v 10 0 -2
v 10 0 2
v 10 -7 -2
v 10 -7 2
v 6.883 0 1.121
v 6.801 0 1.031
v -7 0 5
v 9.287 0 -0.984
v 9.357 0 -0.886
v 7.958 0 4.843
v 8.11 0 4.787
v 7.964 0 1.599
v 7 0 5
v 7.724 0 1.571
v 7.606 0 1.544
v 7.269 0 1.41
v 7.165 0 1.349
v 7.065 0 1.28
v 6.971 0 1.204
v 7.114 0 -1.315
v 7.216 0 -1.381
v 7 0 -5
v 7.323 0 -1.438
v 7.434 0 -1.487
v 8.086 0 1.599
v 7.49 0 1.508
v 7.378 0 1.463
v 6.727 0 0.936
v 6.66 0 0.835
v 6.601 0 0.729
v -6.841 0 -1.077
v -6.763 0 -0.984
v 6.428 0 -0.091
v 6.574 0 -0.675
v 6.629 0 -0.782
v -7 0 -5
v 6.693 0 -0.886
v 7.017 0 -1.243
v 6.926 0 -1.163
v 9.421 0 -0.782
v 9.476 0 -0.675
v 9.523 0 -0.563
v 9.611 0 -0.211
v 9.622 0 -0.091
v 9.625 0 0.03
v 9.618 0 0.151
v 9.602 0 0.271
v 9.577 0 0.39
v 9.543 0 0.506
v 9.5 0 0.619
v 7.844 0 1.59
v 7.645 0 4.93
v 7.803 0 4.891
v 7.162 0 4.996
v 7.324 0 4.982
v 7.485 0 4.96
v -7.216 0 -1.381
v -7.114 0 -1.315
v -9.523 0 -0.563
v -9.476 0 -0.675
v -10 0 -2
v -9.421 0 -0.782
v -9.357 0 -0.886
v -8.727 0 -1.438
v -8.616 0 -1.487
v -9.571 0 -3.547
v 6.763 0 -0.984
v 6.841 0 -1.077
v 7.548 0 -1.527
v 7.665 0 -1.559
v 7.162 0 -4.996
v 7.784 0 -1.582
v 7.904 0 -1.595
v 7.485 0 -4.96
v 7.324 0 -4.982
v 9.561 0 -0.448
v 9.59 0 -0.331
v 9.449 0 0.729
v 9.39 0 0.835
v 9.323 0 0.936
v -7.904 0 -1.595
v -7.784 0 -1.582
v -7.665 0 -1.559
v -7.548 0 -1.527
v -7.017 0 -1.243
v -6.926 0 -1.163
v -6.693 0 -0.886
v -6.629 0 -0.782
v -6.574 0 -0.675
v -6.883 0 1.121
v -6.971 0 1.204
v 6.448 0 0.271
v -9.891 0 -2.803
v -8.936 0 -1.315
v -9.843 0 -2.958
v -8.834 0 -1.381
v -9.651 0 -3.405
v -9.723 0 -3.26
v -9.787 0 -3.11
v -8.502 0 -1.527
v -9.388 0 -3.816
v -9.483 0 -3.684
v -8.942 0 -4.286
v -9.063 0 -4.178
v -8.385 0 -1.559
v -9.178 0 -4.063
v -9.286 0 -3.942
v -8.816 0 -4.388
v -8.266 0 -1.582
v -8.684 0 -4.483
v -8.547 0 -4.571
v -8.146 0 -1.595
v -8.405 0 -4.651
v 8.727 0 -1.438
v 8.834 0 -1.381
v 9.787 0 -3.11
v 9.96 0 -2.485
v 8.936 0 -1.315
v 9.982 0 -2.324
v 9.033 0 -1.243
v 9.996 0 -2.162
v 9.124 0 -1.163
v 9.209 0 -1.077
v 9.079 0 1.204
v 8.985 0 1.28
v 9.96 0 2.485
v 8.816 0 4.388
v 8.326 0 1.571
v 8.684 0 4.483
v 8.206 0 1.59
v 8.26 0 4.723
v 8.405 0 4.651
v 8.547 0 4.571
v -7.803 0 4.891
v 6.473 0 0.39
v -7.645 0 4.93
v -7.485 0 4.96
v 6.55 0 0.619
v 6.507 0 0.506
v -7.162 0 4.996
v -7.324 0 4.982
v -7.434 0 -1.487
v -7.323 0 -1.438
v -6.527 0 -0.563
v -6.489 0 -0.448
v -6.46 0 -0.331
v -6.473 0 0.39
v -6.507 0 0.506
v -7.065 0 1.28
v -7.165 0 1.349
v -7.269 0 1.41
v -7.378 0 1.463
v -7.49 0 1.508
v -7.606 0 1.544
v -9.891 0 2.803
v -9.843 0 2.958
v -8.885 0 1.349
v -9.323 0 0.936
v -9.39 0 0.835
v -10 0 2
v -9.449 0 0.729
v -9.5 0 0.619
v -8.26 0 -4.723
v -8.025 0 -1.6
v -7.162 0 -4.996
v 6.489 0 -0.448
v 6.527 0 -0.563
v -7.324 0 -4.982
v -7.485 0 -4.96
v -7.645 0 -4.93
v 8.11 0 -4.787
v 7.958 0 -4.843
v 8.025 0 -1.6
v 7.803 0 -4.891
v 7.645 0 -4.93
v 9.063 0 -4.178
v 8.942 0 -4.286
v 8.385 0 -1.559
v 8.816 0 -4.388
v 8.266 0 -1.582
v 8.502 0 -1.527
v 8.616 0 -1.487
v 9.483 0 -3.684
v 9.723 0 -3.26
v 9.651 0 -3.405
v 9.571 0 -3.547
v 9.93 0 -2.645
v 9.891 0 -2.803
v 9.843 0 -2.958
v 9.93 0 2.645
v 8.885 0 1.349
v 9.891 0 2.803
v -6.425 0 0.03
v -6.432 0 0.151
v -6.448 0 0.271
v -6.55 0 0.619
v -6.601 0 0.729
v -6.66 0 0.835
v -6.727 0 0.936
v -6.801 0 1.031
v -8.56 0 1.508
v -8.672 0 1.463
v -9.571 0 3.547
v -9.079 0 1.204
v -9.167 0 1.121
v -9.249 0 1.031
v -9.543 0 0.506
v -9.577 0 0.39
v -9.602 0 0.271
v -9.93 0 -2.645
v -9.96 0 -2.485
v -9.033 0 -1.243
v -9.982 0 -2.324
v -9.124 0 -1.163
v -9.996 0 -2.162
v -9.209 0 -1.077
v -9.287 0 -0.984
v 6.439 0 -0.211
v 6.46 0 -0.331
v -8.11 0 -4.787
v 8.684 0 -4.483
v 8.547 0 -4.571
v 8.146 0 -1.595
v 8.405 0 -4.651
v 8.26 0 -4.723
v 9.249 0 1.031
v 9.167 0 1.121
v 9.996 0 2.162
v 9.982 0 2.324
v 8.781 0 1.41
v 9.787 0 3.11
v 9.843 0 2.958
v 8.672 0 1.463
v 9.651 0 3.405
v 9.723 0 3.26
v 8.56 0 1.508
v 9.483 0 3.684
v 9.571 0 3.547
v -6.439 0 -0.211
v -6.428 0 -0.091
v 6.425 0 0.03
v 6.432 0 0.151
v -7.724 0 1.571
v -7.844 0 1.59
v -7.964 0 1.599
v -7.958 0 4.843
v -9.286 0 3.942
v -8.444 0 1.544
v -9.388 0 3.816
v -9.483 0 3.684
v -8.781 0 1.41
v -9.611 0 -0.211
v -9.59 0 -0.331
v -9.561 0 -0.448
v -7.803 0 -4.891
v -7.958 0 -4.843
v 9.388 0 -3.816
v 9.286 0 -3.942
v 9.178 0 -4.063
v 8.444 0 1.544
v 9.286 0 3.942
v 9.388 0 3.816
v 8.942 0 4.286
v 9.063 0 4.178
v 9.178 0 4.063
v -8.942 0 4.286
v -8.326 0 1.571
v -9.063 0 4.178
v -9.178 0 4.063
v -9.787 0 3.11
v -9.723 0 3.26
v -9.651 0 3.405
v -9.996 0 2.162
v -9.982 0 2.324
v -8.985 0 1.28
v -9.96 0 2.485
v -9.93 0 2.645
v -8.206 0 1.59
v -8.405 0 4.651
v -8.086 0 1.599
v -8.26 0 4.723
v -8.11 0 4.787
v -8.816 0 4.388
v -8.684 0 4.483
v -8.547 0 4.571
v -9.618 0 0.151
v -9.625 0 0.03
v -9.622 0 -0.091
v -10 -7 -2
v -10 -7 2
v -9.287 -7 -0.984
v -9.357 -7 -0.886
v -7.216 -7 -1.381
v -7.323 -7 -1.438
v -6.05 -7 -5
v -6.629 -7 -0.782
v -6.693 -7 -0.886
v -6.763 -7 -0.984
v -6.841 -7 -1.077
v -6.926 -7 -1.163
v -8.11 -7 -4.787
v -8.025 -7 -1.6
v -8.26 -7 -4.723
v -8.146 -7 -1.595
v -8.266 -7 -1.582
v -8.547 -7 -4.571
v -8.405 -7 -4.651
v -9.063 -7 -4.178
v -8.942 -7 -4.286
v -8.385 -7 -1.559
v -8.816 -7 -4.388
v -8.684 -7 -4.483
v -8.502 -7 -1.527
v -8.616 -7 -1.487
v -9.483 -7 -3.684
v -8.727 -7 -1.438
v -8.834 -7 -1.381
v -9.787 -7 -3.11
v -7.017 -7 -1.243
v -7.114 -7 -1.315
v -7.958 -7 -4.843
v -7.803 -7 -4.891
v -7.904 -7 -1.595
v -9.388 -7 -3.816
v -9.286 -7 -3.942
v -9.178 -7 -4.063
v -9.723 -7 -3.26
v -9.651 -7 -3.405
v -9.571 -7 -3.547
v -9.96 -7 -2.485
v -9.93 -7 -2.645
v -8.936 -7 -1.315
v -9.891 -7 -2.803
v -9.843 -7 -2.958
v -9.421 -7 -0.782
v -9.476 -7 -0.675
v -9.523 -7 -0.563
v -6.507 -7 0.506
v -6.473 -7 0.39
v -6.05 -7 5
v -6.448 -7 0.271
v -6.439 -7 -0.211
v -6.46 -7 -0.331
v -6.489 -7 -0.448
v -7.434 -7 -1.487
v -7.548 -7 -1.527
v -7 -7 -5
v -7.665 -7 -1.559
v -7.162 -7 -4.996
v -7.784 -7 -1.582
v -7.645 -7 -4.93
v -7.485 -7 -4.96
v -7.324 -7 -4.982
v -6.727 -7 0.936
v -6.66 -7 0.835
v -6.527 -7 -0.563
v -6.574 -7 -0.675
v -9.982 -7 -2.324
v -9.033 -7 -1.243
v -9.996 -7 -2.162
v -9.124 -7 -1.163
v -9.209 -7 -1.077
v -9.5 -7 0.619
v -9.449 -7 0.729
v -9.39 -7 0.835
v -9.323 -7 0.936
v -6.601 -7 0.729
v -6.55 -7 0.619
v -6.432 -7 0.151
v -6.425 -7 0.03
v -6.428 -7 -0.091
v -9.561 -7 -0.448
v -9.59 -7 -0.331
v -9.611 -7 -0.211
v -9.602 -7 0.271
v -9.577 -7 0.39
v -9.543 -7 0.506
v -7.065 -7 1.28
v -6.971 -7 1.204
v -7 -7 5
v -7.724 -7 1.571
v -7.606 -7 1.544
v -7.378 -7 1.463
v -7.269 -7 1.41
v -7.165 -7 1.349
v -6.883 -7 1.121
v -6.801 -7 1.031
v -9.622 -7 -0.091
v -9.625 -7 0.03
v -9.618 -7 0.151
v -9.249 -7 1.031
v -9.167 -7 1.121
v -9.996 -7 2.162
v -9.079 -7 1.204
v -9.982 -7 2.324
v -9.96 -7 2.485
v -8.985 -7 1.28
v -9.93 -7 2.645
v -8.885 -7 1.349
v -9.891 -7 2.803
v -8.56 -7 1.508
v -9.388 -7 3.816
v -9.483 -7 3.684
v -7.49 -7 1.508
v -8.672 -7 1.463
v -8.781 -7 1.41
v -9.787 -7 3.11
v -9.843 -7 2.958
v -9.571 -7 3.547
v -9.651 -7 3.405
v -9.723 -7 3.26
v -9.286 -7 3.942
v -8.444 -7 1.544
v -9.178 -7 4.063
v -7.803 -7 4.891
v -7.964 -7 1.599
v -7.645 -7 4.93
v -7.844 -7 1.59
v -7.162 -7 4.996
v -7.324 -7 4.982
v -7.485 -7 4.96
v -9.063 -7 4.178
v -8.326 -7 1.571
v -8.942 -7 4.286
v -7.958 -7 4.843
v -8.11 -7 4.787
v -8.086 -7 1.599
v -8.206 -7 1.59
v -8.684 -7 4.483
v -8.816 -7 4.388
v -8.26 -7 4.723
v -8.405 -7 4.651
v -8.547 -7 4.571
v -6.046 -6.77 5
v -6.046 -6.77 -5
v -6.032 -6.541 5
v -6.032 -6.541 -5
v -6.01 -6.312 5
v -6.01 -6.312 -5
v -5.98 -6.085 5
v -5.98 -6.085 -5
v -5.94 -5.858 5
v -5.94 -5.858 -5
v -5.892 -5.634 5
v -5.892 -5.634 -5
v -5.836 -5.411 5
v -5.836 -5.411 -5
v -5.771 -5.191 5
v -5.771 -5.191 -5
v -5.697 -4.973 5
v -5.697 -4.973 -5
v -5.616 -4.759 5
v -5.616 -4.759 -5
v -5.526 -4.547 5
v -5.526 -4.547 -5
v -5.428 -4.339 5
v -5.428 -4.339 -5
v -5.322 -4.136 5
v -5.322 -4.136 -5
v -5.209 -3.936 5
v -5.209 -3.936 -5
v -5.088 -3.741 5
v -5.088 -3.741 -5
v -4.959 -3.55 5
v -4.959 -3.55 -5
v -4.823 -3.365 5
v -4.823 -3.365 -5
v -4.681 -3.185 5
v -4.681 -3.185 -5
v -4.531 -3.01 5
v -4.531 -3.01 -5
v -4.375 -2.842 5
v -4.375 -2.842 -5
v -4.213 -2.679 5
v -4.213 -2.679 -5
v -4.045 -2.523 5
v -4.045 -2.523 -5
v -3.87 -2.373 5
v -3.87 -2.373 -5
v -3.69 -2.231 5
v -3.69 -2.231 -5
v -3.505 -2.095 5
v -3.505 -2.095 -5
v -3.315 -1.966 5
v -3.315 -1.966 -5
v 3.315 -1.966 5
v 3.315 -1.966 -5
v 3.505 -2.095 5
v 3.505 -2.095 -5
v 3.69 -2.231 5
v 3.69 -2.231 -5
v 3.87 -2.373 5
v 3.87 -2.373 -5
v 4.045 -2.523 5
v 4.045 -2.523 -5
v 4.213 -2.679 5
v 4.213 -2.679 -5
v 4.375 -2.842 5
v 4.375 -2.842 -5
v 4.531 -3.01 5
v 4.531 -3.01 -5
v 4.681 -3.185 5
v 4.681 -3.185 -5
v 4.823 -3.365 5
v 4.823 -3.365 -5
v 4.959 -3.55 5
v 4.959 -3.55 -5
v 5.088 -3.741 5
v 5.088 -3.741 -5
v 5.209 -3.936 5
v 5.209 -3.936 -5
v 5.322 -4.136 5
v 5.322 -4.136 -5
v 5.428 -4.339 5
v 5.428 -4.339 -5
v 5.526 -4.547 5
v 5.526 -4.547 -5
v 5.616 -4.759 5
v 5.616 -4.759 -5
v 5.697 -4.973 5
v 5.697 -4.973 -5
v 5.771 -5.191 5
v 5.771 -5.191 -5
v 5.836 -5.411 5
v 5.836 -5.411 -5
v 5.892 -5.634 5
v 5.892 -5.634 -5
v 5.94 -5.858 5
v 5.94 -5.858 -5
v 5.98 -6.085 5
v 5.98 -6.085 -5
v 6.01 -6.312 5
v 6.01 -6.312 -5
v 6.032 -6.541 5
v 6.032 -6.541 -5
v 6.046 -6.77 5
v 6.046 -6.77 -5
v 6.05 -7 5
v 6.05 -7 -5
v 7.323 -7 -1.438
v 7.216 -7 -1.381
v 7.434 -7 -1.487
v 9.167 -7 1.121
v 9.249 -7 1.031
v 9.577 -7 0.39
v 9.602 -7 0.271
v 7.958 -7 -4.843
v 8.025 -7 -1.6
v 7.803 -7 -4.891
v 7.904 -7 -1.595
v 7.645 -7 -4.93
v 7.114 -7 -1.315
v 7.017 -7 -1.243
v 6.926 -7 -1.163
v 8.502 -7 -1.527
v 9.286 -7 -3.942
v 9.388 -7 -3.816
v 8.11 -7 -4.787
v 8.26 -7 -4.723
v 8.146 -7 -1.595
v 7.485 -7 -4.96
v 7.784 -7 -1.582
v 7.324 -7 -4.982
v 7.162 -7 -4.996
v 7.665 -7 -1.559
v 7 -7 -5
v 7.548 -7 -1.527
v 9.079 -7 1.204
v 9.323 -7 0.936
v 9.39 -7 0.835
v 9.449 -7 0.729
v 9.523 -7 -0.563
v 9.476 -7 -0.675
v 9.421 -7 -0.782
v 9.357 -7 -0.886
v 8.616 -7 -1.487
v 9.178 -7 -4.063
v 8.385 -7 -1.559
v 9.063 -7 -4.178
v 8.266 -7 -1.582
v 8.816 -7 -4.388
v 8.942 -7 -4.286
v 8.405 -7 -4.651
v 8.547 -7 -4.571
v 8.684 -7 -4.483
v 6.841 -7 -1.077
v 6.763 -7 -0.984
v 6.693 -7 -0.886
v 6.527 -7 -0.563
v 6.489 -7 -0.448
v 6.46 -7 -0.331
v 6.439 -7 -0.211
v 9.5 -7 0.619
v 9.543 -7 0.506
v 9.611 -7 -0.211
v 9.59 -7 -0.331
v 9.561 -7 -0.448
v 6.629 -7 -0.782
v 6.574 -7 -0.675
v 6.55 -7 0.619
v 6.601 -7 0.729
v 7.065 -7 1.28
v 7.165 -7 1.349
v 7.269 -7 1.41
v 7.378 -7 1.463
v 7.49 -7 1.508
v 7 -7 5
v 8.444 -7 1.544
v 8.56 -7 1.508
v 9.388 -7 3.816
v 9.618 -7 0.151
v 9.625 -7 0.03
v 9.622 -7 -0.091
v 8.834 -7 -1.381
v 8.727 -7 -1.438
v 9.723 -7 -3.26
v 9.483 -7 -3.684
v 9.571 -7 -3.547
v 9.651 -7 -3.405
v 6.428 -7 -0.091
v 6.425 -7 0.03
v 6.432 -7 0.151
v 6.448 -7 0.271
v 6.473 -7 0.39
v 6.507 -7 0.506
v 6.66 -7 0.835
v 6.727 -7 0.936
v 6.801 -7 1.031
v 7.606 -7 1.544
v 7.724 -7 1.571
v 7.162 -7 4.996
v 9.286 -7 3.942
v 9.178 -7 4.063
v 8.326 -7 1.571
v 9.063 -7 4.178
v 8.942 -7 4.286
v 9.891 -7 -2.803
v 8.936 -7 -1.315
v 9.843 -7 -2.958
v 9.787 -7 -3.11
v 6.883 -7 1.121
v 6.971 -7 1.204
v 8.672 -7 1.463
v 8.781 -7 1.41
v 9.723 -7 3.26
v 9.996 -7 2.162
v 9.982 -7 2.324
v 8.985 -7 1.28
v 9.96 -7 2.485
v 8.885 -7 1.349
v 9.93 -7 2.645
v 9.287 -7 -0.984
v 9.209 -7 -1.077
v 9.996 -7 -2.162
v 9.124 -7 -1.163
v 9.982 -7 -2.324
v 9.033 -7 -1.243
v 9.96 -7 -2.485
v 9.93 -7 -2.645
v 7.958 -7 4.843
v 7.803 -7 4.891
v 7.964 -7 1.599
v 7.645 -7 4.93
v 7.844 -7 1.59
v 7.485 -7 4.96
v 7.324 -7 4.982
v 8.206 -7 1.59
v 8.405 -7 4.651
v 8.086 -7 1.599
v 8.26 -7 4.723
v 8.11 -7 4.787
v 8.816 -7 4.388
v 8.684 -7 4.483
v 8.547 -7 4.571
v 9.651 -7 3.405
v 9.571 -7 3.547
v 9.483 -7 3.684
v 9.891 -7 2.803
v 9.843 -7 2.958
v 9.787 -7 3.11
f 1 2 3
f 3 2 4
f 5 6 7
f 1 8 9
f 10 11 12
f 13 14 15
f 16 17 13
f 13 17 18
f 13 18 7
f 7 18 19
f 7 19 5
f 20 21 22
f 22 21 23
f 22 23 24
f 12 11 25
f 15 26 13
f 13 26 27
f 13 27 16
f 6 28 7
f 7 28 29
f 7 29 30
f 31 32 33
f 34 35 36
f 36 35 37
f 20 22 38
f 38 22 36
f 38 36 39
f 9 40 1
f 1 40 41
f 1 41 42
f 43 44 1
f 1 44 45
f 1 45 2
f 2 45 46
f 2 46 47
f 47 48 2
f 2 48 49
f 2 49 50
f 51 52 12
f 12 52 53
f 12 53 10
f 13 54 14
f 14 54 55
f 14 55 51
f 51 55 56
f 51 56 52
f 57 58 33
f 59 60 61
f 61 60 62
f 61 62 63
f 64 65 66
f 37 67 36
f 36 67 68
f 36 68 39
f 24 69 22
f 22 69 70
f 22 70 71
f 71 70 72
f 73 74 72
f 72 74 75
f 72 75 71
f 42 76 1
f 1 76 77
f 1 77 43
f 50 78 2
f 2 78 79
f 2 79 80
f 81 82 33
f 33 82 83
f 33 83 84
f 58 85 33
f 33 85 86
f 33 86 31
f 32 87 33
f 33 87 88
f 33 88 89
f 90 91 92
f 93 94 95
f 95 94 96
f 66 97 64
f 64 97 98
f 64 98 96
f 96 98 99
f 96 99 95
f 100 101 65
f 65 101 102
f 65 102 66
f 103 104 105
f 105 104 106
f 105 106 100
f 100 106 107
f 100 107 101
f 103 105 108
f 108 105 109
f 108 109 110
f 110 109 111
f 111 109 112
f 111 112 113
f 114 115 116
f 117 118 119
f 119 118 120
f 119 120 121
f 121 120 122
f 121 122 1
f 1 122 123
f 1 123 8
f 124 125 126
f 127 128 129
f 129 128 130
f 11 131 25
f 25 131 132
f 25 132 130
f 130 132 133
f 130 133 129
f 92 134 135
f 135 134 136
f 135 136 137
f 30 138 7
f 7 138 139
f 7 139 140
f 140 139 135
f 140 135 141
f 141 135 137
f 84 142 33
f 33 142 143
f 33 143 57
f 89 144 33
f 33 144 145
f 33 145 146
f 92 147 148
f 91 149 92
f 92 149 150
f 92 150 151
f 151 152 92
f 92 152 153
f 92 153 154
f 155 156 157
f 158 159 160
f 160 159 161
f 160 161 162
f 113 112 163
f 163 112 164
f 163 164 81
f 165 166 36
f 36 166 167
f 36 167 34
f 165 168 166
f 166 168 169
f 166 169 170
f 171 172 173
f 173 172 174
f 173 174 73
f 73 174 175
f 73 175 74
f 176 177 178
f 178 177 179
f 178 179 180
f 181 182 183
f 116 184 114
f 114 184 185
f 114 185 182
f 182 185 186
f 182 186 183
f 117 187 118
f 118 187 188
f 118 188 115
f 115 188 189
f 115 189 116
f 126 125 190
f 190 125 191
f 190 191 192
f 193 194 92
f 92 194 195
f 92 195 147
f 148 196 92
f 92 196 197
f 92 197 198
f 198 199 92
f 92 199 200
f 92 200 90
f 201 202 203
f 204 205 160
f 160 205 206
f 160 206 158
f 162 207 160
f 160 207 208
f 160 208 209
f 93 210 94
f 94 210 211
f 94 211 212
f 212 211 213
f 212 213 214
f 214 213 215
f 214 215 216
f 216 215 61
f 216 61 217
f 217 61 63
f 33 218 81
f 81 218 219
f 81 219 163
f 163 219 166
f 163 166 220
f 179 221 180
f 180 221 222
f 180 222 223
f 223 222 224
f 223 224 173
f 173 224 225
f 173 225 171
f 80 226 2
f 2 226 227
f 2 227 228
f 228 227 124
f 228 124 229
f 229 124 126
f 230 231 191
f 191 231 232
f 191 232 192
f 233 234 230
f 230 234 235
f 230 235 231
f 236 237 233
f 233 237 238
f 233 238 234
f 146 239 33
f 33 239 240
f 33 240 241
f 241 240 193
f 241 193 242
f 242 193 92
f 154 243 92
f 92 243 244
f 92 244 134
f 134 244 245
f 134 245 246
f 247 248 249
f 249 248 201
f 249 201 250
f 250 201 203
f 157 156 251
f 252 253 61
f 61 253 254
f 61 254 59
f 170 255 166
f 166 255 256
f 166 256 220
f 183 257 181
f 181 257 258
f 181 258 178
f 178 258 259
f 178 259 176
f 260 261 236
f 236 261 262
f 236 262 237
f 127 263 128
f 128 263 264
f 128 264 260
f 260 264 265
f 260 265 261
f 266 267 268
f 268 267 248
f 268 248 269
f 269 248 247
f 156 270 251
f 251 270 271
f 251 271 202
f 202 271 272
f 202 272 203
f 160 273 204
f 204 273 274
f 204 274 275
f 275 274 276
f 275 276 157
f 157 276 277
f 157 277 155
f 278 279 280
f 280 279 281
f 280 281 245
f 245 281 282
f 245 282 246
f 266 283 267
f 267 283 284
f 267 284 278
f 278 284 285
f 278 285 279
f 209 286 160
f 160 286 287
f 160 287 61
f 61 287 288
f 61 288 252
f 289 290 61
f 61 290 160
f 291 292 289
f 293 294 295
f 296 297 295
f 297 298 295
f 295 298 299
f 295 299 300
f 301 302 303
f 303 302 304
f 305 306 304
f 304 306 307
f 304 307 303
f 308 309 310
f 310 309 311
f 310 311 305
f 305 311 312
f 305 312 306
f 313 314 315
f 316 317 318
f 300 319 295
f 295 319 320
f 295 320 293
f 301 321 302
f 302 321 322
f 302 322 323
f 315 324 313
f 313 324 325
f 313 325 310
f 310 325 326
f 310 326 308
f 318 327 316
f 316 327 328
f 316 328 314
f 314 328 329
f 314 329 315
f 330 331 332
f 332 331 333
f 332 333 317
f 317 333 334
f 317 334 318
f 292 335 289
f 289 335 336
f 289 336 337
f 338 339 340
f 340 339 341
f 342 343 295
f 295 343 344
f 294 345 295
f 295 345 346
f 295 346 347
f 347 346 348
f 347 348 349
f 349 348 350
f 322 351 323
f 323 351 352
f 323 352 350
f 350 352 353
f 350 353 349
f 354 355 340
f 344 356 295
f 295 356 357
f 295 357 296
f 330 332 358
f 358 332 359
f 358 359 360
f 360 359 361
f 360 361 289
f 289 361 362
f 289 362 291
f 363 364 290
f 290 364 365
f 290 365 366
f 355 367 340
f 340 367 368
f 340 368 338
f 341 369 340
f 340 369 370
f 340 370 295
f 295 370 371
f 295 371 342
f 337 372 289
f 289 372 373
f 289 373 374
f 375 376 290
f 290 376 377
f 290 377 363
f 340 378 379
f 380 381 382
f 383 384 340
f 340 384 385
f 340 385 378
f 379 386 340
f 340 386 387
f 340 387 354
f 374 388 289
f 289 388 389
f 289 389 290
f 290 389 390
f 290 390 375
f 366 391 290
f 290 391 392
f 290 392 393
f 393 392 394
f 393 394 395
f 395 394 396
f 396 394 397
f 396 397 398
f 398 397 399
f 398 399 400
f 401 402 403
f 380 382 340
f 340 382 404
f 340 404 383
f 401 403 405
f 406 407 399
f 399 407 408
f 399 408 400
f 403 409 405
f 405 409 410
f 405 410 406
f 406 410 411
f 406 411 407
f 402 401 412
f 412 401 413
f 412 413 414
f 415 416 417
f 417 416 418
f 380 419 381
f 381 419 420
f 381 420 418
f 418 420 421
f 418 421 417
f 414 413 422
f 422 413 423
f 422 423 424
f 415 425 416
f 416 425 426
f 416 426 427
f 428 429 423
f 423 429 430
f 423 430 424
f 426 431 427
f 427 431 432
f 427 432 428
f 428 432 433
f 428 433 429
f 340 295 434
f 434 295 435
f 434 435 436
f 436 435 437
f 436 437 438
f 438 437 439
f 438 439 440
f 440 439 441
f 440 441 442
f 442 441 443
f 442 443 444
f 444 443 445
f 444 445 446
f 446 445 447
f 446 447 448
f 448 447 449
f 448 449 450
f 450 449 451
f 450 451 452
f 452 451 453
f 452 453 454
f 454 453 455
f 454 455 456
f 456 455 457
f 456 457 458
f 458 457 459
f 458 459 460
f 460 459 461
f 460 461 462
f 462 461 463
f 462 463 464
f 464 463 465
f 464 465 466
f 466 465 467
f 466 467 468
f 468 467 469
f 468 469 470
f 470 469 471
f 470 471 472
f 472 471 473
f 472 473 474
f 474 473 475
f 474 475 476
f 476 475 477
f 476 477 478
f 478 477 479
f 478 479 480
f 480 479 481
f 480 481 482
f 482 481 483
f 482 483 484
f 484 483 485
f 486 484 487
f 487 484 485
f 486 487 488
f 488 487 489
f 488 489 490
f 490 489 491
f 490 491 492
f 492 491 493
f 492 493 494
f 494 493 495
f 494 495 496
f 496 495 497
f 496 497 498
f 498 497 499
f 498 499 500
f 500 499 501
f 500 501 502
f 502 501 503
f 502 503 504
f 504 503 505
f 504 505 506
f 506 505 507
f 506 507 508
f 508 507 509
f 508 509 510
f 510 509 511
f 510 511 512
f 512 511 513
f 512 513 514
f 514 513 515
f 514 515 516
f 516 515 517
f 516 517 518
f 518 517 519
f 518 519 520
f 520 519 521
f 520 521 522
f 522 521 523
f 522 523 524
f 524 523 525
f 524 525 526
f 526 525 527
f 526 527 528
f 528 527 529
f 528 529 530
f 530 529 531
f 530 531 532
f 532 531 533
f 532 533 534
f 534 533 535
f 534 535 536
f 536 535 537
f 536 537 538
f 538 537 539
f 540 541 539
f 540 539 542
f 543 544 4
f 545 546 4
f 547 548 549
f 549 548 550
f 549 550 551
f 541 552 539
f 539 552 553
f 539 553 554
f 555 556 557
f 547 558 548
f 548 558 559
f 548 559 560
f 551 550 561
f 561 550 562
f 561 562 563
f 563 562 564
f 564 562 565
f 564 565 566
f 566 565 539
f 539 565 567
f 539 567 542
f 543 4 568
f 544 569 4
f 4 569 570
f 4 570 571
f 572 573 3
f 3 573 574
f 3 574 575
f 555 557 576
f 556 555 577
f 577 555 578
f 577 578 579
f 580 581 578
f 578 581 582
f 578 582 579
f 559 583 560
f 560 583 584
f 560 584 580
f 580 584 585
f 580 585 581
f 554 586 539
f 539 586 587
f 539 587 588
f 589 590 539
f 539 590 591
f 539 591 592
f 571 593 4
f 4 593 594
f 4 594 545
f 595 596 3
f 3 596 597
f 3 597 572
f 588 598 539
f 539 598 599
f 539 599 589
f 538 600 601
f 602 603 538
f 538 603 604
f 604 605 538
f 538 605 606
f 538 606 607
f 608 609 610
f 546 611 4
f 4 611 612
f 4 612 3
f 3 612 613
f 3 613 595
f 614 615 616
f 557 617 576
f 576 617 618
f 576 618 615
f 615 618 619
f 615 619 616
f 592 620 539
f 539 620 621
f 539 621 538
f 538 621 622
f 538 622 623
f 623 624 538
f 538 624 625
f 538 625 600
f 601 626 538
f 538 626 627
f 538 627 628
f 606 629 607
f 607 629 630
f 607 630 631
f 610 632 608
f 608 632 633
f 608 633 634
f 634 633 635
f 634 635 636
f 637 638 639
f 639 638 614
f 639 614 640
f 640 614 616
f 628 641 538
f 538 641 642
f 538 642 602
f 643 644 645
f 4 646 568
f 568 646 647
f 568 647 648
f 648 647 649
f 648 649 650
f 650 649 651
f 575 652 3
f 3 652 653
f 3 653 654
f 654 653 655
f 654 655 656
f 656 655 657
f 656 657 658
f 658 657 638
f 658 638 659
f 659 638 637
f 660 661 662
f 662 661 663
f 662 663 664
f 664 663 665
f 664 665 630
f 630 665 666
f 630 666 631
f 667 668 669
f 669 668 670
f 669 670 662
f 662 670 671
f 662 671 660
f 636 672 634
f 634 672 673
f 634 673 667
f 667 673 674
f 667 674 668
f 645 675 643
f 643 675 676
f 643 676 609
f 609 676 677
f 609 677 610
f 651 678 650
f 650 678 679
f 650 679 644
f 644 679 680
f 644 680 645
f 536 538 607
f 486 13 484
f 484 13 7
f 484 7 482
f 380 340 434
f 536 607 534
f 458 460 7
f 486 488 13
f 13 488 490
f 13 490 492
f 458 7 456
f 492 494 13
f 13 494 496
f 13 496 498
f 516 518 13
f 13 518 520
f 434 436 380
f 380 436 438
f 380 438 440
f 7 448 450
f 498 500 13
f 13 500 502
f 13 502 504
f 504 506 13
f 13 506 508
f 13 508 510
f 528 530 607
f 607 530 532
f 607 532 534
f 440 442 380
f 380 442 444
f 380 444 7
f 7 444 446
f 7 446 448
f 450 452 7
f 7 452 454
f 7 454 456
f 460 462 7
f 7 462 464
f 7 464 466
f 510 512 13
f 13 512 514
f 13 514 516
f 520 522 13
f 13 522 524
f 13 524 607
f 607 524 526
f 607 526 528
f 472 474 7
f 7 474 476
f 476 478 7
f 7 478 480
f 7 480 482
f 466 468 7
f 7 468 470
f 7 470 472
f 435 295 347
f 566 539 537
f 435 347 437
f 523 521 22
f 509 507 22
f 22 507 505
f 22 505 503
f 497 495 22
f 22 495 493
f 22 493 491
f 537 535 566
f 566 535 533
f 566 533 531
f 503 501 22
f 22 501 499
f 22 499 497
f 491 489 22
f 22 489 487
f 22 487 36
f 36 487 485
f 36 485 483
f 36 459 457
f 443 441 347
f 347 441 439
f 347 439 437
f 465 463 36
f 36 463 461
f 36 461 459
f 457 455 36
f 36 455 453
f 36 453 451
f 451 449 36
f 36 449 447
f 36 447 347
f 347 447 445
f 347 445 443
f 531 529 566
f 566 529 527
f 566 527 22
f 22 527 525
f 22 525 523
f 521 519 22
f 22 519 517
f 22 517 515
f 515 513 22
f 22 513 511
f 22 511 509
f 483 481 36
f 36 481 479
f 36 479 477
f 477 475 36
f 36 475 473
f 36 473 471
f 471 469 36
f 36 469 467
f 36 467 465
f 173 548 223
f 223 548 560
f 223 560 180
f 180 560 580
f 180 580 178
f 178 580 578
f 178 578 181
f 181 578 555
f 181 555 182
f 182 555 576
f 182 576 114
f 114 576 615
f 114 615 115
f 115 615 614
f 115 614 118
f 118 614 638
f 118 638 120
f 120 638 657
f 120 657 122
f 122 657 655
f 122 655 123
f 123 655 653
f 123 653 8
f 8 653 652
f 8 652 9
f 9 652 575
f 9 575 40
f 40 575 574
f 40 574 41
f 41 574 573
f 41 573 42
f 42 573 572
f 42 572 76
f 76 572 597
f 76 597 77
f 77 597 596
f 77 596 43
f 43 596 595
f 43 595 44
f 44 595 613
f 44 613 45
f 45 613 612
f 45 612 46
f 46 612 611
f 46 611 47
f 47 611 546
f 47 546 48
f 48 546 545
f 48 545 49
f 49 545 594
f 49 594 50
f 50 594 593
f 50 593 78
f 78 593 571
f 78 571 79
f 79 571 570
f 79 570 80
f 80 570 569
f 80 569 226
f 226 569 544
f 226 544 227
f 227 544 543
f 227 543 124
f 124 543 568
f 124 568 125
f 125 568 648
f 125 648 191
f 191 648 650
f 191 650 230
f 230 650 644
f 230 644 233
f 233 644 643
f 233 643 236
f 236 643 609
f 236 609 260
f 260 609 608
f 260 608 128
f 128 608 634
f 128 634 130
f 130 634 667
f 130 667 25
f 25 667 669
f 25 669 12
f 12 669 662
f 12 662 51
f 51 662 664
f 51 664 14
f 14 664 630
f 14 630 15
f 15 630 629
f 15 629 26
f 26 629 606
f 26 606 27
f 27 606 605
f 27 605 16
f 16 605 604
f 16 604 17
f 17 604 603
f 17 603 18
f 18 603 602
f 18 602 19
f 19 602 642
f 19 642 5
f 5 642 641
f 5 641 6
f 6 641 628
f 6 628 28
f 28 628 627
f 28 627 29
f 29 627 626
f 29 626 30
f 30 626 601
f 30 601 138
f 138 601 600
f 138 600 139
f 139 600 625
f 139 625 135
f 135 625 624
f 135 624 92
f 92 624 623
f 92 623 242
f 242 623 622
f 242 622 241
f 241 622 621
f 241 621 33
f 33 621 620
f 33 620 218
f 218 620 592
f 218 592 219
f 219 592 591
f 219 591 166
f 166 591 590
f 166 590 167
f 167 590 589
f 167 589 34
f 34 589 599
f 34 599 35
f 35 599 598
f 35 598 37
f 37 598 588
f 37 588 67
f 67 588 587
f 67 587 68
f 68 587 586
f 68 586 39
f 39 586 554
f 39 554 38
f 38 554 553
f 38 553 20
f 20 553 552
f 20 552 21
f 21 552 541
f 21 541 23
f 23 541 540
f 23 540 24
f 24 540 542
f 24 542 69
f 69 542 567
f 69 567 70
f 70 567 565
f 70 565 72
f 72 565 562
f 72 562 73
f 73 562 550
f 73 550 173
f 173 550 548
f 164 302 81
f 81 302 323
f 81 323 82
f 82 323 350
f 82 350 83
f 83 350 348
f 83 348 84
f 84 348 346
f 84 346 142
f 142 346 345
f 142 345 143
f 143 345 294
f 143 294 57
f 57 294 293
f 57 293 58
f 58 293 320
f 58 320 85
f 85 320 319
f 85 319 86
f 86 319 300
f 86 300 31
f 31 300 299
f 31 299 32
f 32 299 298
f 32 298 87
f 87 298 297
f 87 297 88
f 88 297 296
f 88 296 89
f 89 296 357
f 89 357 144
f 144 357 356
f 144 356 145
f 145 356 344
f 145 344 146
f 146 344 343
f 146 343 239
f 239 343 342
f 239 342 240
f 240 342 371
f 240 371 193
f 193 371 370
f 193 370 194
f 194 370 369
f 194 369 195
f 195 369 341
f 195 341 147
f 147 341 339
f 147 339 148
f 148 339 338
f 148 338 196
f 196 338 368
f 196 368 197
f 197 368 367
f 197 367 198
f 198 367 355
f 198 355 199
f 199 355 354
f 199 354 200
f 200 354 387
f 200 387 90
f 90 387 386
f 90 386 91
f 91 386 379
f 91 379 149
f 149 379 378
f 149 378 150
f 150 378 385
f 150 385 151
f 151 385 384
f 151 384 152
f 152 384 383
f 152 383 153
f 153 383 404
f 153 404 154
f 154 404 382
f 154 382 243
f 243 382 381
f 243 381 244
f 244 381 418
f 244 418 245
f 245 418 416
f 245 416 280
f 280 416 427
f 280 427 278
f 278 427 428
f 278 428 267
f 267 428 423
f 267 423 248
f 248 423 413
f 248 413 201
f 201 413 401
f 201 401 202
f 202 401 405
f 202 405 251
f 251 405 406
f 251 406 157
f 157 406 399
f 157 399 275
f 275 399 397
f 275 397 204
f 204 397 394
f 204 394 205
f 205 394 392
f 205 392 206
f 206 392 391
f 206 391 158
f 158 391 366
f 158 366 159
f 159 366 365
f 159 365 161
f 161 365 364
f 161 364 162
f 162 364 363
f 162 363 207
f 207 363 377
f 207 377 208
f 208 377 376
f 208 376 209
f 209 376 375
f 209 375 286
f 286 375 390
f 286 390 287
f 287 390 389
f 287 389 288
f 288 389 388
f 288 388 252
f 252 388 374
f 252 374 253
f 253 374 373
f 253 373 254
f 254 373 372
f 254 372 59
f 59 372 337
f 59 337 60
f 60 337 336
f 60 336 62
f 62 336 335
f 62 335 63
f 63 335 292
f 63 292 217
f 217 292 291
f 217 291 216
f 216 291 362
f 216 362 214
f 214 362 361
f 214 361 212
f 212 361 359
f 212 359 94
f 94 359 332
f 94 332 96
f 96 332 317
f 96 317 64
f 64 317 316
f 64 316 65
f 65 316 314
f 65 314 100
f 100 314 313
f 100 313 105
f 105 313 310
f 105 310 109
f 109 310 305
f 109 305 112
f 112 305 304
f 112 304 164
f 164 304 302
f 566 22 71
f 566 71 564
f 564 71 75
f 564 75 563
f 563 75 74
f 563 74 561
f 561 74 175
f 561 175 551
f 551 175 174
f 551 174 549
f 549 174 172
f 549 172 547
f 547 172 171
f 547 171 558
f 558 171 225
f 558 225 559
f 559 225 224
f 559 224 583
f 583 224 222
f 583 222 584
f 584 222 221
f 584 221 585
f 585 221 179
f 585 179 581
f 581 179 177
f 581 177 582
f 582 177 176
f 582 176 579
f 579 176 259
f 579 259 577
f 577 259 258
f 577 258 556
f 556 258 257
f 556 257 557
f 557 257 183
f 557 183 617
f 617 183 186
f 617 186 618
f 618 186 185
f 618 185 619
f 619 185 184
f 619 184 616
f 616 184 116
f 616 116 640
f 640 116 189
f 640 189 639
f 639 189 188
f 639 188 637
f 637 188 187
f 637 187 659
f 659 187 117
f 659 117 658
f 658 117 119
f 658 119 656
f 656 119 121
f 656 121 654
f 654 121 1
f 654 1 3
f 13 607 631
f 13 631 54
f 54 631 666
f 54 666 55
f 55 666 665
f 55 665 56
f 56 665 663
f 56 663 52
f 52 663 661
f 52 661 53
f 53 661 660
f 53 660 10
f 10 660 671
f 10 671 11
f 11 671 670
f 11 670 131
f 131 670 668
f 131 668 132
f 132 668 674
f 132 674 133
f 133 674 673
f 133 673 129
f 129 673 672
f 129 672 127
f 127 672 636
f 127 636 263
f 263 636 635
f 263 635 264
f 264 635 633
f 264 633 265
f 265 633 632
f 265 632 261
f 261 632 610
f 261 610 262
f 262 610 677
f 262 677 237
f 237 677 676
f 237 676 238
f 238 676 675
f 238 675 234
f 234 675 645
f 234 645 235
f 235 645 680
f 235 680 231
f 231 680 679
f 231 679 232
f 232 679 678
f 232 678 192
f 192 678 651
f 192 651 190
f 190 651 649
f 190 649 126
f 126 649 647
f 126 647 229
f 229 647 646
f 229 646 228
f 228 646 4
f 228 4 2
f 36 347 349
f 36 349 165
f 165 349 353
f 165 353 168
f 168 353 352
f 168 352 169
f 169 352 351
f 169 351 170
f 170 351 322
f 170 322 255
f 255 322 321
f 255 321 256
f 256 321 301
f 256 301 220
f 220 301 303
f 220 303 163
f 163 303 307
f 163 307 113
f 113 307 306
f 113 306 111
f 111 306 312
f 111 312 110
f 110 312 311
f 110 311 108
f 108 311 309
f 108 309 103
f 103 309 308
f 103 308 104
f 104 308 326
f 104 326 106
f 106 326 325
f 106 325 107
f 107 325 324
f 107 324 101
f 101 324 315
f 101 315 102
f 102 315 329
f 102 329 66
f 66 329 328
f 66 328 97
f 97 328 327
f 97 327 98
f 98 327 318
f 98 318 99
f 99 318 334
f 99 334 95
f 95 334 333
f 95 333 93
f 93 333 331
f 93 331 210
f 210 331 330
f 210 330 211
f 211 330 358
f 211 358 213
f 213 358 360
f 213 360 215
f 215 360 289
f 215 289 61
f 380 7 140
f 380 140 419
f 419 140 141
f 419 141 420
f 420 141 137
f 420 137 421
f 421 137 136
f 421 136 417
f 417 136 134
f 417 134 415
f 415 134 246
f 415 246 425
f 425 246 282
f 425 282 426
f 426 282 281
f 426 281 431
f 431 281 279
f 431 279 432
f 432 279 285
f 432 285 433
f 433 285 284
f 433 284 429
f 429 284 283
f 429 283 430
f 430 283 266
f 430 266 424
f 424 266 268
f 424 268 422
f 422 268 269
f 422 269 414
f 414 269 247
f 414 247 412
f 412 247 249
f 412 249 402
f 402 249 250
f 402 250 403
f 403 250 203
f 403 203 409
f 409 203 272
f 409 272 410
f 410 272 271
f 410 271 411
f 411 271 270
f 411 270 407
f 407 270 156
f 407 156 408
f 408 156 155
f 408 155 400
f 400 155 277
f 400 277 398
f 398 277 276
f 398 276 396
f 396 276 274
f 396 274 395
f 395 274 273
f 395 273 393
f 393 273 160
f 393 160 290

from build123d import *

# Parameters (mm, degrees)
BOSS_EXTRUDE1_DEPTH = 5
SKETCH2_R           = 1.6
CUT_EXTRUDE1_DEPTH  = 14.190905958
FILLET3_R           = 3


with BuildPart() as part:
    # Sketch1 → Boss-Extrude1 (new, symmetric)
    with BuildSketch(Plane.XY):
        with BuildLine():
            Line((-10, 0), (10, 0))
            Line((10, 0), (10, -7))
            Line((10, -7), (6.05, -7))
            ThreePointArc((6.05, -7), (5.322096357, -4.135562883), (3.315, -1.966137169))
            Line((3.315, -1.966137169), (-3.315, -1.966137169))
            ThreePointArc((-3.315, -1.966137169), (-5.322096357, -4.135562883), (-6.05, -7))
            Line((-6.05, -7), (-10, -7))
            Line((-10, -7), (-10, 0))
        make_face()
    extrude(amount=BOSS_EXTRUDE1_DEPTH, both=True)

    # Sketch2 → Cut-Extrude1 (cut, through all)
    with BuildSketch(Plane.XZ.offset(7)):
        with Locations(Location((8.025, 0, 0), (0, 0, 270))):
            Circle(SKETCH2_R)
        with Locations(Location((-8.025, 0, 0), (0, 0, 270))):
            Circle(SKETCH2_R)
    extrude(amount=-CUT_EXTRUDE1_DEPTH, mode=Mode.SUBTRACT)

    # Fillet3
    fillet3_edges = [part.edges().sort_by_distance(p)[0] for p in [
        (-10, -3.5, -5),
        (10, -3.5, -5),
        (-10, -3.5, 5),
        (10, -3.5, 5),
    ]]
    fillet(fillet3_edges, radius=FILLET3_R)


solid = part.part
